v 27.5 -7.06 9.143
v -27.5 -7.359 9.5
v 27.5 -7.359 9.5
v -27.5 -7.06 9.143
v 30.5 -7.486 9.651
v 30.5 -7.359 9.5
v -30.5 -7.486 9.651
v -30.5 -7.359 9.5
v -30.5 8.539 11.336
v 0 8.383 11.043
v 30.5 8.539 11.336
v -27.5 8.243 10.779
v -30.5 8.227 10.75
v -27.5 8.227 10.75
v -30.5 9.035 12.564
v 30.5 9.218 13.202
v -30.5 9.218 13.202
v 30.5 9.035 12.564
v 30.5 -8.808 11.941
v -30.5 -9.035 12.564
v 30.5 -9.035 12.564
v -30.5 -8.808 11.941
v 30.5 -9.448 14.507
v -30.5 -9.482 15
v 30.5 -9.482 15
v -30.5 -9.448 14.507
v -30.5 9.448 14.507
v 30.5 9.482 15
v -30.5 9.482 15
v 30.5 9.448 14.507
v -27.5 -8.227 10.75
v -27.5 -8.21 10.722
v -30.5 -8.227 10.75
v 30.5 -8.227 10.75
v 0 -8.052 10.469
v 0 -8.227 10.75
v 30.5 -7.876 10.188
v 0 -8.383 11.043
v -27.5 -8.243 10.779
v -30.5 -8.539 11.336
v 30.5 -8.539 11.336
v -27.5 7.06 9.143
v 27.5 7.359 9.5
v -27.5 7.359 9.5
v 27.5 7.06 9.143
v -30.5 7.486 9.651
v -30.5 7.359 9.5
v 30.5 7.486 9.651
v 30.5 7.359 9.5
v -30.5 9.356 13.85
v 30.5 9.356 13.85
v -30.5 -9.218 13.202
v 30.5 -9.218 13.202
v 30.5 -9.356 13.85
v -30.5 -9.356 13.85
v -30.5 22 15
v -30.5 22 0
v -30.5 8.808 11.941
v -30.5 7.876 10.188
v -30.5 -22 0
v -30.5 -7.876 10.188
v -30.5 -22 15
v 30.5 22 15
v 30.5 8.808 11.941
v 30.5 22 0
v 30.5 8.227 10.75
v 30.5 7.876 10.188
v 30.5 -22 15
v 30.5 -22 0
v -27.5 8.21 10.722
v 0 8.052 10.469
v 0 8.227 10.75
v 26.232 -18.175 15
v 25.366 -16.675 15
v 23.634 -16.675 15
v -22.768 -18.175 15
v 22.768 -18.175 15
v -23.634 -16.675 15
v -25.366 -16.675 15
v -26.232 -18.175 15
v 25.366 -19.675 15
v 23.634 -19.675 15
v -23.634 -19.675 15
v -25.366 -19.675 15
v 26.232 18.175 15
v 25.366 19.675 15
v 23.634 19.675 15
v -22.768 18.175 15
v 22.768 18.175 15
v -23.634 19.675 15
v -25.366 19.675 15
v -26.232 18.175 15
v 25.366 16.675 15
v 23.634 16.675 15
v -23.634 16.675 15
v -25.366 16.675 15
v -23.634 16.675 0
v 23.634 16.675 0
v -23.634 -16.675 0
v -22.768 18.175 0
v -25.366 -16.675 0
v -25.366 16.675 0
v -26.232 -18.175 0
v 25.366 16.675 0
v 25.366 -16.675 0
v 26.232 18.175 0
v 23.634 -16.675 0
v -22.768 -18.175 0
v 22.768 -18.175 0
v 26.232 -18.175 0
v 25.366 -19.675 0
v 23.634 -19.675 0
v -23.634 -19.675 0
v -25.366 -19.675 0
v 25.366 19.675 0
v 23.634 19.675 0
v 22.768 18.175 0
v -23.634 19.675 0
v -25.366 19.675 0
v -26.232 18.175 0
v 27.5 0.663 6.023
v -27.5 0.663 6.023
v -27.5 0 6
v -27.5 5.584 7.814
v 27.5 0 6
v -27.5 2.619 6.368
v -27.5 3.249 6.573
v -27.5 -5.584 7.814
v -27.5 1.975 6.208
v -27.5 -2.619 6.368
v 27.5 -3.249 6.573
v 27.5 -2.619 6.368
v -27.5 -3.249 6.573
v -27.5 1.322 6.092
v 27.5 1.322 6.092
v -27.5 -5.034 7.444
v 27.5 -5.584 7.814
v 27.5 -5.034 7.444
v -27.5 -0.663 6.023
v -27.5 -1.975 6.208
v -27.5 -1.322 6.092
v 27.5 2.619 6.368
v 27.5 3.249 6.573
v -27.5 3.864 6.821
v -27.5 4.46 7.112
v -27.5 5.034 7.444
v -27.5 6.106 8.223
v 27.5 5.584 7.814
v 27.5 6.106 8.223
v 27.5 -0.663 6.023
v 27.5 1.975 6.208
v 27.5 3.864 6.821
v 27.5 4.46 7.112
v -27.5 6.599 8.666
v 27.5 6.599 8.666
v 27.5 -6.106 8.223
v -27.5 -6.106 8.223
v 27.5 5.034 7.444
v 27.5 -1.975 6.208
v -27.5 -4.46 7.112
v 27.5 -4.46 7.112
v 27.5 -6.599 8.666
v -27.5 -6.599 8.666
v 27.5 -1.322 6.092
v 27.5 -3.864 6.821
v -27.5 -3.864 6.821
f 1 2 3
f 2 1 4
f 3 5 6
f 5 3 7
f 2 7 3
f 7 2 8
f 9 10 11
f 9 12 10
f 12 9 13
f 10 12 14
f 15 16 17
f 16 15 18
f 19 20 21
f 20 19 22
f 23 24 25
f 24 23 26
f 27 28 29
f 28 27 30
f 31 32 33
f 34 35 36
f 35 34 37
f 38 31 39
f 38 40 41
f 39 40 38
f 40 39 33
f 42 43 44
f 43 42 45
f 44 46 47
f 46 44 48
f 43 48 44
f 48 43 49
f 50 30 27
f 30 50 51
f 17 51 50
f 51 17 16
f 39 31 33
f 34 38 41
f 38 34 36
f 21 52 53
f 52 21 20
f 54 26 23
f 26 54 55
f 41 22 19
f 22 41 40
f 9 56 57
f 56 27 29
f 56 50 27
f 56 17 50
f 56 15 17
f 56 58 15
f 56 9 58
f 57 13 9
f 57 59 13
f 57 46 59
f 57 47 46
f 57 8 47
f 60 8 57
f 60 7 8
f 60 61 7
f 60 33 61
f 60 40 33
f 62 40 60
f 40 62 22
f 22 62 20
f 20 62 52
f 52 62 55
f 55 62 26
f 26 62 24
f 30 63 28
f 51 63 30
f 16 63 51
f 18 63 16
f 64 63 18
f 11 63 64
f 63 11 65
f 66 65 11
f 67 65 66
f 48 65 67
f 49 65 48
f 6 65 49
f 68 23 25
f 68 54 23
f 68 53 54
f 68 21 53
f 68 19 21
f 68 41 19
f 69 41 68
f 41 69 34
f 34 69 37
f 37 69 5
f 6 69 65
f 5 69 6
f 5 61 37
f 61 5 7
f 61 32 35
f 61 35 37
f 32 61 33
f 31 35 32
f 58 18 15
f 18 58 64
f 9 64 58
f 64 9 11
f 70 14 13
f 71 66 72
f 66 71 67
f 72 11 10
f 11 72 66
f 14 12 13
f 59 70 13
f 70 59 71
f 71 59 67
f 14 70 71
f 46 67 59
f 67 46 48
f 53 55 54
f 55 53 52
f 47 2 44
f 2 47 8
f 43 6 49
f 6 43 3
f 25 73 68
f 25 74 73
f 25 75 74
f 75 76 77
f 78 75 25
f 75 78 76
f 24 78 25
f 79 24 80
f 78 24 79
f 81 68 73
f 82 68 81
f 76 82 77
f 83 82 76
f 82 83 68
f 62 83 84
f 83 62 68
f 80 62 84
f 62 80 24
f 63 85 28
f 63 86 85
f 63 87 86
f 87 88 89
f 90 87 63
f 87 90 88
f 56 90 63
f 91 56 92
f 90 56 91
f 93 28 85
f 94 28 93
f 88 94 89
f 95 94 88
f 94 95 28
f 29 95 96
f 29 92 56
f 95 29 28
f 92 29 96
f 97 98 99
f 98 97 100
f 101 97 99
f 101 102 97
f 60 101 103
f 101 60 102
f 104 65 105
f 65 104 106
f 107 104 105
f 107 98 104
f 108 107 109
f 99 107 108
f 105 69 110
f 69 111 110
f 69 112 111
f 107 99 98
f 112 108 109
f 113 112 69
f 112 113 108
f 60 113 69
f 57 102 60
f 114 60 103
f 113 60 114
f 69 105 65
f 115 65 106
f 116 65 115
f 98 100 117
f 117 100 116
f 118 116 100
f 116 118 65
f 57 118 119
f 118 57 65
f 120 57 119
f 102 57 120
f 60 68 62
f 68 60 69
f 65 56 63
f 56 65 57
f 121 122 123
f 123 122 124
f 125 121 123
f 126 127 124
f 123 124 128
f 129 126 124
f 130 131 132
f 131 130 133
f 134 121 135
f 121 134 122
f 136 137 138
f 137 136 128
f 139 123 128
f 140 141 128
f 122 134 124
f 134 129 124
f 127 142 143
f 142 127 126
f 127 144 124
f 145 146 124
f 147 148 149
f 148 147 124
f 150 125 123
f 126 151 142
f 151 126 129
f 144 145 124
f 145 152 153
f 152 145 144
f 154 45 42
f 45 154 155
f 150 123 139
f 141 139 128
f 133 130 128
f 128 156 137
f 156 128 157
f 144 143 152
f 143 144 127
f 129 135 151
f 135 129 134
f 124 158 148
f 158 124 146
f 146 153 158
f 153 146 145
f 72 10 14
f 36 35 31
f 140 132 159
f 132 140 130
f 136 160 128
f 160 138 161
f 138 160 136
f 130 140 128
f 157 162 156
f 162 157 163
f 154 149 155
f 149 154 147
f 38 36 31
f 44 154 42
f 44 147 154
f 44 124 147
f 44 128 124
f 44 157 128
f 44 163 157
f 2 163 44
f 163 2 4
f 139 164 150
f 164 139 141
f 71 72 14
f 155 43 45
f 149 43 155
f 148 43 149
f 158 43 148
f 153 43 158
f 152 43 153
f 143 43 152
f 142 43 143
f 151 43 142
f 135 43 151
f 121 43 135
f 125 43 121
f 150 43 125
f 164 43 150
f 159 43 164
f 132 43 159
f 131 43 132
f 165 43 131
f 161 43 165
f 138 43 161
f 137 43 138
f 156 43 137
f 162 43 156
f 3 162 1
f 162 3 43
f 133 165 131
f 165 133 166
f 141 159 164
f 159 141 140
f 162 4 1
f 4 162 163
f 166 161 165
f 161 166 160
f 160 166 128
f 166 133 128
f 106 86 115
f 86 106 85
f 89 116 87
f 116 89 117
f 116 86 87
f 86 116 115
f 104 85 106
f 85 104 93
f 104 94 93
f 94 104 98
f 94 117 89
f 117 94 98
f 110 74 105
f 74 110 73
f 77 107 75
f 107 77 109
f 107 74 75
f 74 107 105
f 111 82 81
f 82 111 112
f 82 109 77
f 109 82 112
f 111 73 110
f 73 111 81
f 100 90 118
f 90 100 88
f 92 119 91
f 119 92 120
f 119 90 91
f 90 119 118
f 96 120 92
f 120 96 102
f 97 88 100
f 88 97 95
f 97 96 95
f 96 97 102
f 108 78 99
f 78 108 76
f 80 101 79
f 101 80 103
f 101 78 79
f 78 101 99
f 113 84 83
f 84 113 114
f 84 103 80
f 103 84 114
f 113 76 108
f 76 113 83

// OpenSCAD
// file: ../polyhole.scad
// The Cylinder is dead! Long live the Cylinder!
// A module for a polyhole by radius, based on Nophead's work.

module polyhole(h, r, cent = false)
{
    n = max(round(4 * r), 3);
    cylinder(h = h, r = r / cos(180 / n), $fn = n, center = cent);
}
// main file
use<../polyhole.scad>

ZBearingClamp();

module ZBearingClamp()
{
    difference()
    {
        union()
        {
            translate([0, 0, (18/2+6)/2])
                cube([55+3+3, 20+5+5+7+7, 18/2+6], center = true);
        }
        difference()
        {
            translate([0, 0, 19/2+6])
                rotate([0, 90, 0])
                    cylinder(h = 55+3+3, r = 19/2, center = true, $fn = 90);
            translate([0, 0, (6+3.5)/2])
                cube([55+3+3, 20+5+5+7+7, 6+3.5], center = true);
        }
        translate([0, 0, 19/2+6])
                rotate([0, 90, 0])
                    cylinder(h = 55, r = 19/2, center = true, $fn = 90);
        translate([((55+3+3)/2-6), (10+5+(5.5/(2*cos(30)))), 0])
            polyhole(18/2+6, 1.5);
        translate([((55+3+3)/2-6), -(10+5+(5.5/(2*cos(30)))), 0])
            polyhole(18/2+6, 1.5);
        translate([-((55+3+3)/2-6), (10+5+(5.5/(2*cos(30)))), 0])
            polyhole(18/2+6, 1.5);
        translate([-((55+3+3)/2-6), -(10+5+(5.5/(2*cos(30)))), 0])
            polyhole(18/2+6, 1.5);
    }
}
